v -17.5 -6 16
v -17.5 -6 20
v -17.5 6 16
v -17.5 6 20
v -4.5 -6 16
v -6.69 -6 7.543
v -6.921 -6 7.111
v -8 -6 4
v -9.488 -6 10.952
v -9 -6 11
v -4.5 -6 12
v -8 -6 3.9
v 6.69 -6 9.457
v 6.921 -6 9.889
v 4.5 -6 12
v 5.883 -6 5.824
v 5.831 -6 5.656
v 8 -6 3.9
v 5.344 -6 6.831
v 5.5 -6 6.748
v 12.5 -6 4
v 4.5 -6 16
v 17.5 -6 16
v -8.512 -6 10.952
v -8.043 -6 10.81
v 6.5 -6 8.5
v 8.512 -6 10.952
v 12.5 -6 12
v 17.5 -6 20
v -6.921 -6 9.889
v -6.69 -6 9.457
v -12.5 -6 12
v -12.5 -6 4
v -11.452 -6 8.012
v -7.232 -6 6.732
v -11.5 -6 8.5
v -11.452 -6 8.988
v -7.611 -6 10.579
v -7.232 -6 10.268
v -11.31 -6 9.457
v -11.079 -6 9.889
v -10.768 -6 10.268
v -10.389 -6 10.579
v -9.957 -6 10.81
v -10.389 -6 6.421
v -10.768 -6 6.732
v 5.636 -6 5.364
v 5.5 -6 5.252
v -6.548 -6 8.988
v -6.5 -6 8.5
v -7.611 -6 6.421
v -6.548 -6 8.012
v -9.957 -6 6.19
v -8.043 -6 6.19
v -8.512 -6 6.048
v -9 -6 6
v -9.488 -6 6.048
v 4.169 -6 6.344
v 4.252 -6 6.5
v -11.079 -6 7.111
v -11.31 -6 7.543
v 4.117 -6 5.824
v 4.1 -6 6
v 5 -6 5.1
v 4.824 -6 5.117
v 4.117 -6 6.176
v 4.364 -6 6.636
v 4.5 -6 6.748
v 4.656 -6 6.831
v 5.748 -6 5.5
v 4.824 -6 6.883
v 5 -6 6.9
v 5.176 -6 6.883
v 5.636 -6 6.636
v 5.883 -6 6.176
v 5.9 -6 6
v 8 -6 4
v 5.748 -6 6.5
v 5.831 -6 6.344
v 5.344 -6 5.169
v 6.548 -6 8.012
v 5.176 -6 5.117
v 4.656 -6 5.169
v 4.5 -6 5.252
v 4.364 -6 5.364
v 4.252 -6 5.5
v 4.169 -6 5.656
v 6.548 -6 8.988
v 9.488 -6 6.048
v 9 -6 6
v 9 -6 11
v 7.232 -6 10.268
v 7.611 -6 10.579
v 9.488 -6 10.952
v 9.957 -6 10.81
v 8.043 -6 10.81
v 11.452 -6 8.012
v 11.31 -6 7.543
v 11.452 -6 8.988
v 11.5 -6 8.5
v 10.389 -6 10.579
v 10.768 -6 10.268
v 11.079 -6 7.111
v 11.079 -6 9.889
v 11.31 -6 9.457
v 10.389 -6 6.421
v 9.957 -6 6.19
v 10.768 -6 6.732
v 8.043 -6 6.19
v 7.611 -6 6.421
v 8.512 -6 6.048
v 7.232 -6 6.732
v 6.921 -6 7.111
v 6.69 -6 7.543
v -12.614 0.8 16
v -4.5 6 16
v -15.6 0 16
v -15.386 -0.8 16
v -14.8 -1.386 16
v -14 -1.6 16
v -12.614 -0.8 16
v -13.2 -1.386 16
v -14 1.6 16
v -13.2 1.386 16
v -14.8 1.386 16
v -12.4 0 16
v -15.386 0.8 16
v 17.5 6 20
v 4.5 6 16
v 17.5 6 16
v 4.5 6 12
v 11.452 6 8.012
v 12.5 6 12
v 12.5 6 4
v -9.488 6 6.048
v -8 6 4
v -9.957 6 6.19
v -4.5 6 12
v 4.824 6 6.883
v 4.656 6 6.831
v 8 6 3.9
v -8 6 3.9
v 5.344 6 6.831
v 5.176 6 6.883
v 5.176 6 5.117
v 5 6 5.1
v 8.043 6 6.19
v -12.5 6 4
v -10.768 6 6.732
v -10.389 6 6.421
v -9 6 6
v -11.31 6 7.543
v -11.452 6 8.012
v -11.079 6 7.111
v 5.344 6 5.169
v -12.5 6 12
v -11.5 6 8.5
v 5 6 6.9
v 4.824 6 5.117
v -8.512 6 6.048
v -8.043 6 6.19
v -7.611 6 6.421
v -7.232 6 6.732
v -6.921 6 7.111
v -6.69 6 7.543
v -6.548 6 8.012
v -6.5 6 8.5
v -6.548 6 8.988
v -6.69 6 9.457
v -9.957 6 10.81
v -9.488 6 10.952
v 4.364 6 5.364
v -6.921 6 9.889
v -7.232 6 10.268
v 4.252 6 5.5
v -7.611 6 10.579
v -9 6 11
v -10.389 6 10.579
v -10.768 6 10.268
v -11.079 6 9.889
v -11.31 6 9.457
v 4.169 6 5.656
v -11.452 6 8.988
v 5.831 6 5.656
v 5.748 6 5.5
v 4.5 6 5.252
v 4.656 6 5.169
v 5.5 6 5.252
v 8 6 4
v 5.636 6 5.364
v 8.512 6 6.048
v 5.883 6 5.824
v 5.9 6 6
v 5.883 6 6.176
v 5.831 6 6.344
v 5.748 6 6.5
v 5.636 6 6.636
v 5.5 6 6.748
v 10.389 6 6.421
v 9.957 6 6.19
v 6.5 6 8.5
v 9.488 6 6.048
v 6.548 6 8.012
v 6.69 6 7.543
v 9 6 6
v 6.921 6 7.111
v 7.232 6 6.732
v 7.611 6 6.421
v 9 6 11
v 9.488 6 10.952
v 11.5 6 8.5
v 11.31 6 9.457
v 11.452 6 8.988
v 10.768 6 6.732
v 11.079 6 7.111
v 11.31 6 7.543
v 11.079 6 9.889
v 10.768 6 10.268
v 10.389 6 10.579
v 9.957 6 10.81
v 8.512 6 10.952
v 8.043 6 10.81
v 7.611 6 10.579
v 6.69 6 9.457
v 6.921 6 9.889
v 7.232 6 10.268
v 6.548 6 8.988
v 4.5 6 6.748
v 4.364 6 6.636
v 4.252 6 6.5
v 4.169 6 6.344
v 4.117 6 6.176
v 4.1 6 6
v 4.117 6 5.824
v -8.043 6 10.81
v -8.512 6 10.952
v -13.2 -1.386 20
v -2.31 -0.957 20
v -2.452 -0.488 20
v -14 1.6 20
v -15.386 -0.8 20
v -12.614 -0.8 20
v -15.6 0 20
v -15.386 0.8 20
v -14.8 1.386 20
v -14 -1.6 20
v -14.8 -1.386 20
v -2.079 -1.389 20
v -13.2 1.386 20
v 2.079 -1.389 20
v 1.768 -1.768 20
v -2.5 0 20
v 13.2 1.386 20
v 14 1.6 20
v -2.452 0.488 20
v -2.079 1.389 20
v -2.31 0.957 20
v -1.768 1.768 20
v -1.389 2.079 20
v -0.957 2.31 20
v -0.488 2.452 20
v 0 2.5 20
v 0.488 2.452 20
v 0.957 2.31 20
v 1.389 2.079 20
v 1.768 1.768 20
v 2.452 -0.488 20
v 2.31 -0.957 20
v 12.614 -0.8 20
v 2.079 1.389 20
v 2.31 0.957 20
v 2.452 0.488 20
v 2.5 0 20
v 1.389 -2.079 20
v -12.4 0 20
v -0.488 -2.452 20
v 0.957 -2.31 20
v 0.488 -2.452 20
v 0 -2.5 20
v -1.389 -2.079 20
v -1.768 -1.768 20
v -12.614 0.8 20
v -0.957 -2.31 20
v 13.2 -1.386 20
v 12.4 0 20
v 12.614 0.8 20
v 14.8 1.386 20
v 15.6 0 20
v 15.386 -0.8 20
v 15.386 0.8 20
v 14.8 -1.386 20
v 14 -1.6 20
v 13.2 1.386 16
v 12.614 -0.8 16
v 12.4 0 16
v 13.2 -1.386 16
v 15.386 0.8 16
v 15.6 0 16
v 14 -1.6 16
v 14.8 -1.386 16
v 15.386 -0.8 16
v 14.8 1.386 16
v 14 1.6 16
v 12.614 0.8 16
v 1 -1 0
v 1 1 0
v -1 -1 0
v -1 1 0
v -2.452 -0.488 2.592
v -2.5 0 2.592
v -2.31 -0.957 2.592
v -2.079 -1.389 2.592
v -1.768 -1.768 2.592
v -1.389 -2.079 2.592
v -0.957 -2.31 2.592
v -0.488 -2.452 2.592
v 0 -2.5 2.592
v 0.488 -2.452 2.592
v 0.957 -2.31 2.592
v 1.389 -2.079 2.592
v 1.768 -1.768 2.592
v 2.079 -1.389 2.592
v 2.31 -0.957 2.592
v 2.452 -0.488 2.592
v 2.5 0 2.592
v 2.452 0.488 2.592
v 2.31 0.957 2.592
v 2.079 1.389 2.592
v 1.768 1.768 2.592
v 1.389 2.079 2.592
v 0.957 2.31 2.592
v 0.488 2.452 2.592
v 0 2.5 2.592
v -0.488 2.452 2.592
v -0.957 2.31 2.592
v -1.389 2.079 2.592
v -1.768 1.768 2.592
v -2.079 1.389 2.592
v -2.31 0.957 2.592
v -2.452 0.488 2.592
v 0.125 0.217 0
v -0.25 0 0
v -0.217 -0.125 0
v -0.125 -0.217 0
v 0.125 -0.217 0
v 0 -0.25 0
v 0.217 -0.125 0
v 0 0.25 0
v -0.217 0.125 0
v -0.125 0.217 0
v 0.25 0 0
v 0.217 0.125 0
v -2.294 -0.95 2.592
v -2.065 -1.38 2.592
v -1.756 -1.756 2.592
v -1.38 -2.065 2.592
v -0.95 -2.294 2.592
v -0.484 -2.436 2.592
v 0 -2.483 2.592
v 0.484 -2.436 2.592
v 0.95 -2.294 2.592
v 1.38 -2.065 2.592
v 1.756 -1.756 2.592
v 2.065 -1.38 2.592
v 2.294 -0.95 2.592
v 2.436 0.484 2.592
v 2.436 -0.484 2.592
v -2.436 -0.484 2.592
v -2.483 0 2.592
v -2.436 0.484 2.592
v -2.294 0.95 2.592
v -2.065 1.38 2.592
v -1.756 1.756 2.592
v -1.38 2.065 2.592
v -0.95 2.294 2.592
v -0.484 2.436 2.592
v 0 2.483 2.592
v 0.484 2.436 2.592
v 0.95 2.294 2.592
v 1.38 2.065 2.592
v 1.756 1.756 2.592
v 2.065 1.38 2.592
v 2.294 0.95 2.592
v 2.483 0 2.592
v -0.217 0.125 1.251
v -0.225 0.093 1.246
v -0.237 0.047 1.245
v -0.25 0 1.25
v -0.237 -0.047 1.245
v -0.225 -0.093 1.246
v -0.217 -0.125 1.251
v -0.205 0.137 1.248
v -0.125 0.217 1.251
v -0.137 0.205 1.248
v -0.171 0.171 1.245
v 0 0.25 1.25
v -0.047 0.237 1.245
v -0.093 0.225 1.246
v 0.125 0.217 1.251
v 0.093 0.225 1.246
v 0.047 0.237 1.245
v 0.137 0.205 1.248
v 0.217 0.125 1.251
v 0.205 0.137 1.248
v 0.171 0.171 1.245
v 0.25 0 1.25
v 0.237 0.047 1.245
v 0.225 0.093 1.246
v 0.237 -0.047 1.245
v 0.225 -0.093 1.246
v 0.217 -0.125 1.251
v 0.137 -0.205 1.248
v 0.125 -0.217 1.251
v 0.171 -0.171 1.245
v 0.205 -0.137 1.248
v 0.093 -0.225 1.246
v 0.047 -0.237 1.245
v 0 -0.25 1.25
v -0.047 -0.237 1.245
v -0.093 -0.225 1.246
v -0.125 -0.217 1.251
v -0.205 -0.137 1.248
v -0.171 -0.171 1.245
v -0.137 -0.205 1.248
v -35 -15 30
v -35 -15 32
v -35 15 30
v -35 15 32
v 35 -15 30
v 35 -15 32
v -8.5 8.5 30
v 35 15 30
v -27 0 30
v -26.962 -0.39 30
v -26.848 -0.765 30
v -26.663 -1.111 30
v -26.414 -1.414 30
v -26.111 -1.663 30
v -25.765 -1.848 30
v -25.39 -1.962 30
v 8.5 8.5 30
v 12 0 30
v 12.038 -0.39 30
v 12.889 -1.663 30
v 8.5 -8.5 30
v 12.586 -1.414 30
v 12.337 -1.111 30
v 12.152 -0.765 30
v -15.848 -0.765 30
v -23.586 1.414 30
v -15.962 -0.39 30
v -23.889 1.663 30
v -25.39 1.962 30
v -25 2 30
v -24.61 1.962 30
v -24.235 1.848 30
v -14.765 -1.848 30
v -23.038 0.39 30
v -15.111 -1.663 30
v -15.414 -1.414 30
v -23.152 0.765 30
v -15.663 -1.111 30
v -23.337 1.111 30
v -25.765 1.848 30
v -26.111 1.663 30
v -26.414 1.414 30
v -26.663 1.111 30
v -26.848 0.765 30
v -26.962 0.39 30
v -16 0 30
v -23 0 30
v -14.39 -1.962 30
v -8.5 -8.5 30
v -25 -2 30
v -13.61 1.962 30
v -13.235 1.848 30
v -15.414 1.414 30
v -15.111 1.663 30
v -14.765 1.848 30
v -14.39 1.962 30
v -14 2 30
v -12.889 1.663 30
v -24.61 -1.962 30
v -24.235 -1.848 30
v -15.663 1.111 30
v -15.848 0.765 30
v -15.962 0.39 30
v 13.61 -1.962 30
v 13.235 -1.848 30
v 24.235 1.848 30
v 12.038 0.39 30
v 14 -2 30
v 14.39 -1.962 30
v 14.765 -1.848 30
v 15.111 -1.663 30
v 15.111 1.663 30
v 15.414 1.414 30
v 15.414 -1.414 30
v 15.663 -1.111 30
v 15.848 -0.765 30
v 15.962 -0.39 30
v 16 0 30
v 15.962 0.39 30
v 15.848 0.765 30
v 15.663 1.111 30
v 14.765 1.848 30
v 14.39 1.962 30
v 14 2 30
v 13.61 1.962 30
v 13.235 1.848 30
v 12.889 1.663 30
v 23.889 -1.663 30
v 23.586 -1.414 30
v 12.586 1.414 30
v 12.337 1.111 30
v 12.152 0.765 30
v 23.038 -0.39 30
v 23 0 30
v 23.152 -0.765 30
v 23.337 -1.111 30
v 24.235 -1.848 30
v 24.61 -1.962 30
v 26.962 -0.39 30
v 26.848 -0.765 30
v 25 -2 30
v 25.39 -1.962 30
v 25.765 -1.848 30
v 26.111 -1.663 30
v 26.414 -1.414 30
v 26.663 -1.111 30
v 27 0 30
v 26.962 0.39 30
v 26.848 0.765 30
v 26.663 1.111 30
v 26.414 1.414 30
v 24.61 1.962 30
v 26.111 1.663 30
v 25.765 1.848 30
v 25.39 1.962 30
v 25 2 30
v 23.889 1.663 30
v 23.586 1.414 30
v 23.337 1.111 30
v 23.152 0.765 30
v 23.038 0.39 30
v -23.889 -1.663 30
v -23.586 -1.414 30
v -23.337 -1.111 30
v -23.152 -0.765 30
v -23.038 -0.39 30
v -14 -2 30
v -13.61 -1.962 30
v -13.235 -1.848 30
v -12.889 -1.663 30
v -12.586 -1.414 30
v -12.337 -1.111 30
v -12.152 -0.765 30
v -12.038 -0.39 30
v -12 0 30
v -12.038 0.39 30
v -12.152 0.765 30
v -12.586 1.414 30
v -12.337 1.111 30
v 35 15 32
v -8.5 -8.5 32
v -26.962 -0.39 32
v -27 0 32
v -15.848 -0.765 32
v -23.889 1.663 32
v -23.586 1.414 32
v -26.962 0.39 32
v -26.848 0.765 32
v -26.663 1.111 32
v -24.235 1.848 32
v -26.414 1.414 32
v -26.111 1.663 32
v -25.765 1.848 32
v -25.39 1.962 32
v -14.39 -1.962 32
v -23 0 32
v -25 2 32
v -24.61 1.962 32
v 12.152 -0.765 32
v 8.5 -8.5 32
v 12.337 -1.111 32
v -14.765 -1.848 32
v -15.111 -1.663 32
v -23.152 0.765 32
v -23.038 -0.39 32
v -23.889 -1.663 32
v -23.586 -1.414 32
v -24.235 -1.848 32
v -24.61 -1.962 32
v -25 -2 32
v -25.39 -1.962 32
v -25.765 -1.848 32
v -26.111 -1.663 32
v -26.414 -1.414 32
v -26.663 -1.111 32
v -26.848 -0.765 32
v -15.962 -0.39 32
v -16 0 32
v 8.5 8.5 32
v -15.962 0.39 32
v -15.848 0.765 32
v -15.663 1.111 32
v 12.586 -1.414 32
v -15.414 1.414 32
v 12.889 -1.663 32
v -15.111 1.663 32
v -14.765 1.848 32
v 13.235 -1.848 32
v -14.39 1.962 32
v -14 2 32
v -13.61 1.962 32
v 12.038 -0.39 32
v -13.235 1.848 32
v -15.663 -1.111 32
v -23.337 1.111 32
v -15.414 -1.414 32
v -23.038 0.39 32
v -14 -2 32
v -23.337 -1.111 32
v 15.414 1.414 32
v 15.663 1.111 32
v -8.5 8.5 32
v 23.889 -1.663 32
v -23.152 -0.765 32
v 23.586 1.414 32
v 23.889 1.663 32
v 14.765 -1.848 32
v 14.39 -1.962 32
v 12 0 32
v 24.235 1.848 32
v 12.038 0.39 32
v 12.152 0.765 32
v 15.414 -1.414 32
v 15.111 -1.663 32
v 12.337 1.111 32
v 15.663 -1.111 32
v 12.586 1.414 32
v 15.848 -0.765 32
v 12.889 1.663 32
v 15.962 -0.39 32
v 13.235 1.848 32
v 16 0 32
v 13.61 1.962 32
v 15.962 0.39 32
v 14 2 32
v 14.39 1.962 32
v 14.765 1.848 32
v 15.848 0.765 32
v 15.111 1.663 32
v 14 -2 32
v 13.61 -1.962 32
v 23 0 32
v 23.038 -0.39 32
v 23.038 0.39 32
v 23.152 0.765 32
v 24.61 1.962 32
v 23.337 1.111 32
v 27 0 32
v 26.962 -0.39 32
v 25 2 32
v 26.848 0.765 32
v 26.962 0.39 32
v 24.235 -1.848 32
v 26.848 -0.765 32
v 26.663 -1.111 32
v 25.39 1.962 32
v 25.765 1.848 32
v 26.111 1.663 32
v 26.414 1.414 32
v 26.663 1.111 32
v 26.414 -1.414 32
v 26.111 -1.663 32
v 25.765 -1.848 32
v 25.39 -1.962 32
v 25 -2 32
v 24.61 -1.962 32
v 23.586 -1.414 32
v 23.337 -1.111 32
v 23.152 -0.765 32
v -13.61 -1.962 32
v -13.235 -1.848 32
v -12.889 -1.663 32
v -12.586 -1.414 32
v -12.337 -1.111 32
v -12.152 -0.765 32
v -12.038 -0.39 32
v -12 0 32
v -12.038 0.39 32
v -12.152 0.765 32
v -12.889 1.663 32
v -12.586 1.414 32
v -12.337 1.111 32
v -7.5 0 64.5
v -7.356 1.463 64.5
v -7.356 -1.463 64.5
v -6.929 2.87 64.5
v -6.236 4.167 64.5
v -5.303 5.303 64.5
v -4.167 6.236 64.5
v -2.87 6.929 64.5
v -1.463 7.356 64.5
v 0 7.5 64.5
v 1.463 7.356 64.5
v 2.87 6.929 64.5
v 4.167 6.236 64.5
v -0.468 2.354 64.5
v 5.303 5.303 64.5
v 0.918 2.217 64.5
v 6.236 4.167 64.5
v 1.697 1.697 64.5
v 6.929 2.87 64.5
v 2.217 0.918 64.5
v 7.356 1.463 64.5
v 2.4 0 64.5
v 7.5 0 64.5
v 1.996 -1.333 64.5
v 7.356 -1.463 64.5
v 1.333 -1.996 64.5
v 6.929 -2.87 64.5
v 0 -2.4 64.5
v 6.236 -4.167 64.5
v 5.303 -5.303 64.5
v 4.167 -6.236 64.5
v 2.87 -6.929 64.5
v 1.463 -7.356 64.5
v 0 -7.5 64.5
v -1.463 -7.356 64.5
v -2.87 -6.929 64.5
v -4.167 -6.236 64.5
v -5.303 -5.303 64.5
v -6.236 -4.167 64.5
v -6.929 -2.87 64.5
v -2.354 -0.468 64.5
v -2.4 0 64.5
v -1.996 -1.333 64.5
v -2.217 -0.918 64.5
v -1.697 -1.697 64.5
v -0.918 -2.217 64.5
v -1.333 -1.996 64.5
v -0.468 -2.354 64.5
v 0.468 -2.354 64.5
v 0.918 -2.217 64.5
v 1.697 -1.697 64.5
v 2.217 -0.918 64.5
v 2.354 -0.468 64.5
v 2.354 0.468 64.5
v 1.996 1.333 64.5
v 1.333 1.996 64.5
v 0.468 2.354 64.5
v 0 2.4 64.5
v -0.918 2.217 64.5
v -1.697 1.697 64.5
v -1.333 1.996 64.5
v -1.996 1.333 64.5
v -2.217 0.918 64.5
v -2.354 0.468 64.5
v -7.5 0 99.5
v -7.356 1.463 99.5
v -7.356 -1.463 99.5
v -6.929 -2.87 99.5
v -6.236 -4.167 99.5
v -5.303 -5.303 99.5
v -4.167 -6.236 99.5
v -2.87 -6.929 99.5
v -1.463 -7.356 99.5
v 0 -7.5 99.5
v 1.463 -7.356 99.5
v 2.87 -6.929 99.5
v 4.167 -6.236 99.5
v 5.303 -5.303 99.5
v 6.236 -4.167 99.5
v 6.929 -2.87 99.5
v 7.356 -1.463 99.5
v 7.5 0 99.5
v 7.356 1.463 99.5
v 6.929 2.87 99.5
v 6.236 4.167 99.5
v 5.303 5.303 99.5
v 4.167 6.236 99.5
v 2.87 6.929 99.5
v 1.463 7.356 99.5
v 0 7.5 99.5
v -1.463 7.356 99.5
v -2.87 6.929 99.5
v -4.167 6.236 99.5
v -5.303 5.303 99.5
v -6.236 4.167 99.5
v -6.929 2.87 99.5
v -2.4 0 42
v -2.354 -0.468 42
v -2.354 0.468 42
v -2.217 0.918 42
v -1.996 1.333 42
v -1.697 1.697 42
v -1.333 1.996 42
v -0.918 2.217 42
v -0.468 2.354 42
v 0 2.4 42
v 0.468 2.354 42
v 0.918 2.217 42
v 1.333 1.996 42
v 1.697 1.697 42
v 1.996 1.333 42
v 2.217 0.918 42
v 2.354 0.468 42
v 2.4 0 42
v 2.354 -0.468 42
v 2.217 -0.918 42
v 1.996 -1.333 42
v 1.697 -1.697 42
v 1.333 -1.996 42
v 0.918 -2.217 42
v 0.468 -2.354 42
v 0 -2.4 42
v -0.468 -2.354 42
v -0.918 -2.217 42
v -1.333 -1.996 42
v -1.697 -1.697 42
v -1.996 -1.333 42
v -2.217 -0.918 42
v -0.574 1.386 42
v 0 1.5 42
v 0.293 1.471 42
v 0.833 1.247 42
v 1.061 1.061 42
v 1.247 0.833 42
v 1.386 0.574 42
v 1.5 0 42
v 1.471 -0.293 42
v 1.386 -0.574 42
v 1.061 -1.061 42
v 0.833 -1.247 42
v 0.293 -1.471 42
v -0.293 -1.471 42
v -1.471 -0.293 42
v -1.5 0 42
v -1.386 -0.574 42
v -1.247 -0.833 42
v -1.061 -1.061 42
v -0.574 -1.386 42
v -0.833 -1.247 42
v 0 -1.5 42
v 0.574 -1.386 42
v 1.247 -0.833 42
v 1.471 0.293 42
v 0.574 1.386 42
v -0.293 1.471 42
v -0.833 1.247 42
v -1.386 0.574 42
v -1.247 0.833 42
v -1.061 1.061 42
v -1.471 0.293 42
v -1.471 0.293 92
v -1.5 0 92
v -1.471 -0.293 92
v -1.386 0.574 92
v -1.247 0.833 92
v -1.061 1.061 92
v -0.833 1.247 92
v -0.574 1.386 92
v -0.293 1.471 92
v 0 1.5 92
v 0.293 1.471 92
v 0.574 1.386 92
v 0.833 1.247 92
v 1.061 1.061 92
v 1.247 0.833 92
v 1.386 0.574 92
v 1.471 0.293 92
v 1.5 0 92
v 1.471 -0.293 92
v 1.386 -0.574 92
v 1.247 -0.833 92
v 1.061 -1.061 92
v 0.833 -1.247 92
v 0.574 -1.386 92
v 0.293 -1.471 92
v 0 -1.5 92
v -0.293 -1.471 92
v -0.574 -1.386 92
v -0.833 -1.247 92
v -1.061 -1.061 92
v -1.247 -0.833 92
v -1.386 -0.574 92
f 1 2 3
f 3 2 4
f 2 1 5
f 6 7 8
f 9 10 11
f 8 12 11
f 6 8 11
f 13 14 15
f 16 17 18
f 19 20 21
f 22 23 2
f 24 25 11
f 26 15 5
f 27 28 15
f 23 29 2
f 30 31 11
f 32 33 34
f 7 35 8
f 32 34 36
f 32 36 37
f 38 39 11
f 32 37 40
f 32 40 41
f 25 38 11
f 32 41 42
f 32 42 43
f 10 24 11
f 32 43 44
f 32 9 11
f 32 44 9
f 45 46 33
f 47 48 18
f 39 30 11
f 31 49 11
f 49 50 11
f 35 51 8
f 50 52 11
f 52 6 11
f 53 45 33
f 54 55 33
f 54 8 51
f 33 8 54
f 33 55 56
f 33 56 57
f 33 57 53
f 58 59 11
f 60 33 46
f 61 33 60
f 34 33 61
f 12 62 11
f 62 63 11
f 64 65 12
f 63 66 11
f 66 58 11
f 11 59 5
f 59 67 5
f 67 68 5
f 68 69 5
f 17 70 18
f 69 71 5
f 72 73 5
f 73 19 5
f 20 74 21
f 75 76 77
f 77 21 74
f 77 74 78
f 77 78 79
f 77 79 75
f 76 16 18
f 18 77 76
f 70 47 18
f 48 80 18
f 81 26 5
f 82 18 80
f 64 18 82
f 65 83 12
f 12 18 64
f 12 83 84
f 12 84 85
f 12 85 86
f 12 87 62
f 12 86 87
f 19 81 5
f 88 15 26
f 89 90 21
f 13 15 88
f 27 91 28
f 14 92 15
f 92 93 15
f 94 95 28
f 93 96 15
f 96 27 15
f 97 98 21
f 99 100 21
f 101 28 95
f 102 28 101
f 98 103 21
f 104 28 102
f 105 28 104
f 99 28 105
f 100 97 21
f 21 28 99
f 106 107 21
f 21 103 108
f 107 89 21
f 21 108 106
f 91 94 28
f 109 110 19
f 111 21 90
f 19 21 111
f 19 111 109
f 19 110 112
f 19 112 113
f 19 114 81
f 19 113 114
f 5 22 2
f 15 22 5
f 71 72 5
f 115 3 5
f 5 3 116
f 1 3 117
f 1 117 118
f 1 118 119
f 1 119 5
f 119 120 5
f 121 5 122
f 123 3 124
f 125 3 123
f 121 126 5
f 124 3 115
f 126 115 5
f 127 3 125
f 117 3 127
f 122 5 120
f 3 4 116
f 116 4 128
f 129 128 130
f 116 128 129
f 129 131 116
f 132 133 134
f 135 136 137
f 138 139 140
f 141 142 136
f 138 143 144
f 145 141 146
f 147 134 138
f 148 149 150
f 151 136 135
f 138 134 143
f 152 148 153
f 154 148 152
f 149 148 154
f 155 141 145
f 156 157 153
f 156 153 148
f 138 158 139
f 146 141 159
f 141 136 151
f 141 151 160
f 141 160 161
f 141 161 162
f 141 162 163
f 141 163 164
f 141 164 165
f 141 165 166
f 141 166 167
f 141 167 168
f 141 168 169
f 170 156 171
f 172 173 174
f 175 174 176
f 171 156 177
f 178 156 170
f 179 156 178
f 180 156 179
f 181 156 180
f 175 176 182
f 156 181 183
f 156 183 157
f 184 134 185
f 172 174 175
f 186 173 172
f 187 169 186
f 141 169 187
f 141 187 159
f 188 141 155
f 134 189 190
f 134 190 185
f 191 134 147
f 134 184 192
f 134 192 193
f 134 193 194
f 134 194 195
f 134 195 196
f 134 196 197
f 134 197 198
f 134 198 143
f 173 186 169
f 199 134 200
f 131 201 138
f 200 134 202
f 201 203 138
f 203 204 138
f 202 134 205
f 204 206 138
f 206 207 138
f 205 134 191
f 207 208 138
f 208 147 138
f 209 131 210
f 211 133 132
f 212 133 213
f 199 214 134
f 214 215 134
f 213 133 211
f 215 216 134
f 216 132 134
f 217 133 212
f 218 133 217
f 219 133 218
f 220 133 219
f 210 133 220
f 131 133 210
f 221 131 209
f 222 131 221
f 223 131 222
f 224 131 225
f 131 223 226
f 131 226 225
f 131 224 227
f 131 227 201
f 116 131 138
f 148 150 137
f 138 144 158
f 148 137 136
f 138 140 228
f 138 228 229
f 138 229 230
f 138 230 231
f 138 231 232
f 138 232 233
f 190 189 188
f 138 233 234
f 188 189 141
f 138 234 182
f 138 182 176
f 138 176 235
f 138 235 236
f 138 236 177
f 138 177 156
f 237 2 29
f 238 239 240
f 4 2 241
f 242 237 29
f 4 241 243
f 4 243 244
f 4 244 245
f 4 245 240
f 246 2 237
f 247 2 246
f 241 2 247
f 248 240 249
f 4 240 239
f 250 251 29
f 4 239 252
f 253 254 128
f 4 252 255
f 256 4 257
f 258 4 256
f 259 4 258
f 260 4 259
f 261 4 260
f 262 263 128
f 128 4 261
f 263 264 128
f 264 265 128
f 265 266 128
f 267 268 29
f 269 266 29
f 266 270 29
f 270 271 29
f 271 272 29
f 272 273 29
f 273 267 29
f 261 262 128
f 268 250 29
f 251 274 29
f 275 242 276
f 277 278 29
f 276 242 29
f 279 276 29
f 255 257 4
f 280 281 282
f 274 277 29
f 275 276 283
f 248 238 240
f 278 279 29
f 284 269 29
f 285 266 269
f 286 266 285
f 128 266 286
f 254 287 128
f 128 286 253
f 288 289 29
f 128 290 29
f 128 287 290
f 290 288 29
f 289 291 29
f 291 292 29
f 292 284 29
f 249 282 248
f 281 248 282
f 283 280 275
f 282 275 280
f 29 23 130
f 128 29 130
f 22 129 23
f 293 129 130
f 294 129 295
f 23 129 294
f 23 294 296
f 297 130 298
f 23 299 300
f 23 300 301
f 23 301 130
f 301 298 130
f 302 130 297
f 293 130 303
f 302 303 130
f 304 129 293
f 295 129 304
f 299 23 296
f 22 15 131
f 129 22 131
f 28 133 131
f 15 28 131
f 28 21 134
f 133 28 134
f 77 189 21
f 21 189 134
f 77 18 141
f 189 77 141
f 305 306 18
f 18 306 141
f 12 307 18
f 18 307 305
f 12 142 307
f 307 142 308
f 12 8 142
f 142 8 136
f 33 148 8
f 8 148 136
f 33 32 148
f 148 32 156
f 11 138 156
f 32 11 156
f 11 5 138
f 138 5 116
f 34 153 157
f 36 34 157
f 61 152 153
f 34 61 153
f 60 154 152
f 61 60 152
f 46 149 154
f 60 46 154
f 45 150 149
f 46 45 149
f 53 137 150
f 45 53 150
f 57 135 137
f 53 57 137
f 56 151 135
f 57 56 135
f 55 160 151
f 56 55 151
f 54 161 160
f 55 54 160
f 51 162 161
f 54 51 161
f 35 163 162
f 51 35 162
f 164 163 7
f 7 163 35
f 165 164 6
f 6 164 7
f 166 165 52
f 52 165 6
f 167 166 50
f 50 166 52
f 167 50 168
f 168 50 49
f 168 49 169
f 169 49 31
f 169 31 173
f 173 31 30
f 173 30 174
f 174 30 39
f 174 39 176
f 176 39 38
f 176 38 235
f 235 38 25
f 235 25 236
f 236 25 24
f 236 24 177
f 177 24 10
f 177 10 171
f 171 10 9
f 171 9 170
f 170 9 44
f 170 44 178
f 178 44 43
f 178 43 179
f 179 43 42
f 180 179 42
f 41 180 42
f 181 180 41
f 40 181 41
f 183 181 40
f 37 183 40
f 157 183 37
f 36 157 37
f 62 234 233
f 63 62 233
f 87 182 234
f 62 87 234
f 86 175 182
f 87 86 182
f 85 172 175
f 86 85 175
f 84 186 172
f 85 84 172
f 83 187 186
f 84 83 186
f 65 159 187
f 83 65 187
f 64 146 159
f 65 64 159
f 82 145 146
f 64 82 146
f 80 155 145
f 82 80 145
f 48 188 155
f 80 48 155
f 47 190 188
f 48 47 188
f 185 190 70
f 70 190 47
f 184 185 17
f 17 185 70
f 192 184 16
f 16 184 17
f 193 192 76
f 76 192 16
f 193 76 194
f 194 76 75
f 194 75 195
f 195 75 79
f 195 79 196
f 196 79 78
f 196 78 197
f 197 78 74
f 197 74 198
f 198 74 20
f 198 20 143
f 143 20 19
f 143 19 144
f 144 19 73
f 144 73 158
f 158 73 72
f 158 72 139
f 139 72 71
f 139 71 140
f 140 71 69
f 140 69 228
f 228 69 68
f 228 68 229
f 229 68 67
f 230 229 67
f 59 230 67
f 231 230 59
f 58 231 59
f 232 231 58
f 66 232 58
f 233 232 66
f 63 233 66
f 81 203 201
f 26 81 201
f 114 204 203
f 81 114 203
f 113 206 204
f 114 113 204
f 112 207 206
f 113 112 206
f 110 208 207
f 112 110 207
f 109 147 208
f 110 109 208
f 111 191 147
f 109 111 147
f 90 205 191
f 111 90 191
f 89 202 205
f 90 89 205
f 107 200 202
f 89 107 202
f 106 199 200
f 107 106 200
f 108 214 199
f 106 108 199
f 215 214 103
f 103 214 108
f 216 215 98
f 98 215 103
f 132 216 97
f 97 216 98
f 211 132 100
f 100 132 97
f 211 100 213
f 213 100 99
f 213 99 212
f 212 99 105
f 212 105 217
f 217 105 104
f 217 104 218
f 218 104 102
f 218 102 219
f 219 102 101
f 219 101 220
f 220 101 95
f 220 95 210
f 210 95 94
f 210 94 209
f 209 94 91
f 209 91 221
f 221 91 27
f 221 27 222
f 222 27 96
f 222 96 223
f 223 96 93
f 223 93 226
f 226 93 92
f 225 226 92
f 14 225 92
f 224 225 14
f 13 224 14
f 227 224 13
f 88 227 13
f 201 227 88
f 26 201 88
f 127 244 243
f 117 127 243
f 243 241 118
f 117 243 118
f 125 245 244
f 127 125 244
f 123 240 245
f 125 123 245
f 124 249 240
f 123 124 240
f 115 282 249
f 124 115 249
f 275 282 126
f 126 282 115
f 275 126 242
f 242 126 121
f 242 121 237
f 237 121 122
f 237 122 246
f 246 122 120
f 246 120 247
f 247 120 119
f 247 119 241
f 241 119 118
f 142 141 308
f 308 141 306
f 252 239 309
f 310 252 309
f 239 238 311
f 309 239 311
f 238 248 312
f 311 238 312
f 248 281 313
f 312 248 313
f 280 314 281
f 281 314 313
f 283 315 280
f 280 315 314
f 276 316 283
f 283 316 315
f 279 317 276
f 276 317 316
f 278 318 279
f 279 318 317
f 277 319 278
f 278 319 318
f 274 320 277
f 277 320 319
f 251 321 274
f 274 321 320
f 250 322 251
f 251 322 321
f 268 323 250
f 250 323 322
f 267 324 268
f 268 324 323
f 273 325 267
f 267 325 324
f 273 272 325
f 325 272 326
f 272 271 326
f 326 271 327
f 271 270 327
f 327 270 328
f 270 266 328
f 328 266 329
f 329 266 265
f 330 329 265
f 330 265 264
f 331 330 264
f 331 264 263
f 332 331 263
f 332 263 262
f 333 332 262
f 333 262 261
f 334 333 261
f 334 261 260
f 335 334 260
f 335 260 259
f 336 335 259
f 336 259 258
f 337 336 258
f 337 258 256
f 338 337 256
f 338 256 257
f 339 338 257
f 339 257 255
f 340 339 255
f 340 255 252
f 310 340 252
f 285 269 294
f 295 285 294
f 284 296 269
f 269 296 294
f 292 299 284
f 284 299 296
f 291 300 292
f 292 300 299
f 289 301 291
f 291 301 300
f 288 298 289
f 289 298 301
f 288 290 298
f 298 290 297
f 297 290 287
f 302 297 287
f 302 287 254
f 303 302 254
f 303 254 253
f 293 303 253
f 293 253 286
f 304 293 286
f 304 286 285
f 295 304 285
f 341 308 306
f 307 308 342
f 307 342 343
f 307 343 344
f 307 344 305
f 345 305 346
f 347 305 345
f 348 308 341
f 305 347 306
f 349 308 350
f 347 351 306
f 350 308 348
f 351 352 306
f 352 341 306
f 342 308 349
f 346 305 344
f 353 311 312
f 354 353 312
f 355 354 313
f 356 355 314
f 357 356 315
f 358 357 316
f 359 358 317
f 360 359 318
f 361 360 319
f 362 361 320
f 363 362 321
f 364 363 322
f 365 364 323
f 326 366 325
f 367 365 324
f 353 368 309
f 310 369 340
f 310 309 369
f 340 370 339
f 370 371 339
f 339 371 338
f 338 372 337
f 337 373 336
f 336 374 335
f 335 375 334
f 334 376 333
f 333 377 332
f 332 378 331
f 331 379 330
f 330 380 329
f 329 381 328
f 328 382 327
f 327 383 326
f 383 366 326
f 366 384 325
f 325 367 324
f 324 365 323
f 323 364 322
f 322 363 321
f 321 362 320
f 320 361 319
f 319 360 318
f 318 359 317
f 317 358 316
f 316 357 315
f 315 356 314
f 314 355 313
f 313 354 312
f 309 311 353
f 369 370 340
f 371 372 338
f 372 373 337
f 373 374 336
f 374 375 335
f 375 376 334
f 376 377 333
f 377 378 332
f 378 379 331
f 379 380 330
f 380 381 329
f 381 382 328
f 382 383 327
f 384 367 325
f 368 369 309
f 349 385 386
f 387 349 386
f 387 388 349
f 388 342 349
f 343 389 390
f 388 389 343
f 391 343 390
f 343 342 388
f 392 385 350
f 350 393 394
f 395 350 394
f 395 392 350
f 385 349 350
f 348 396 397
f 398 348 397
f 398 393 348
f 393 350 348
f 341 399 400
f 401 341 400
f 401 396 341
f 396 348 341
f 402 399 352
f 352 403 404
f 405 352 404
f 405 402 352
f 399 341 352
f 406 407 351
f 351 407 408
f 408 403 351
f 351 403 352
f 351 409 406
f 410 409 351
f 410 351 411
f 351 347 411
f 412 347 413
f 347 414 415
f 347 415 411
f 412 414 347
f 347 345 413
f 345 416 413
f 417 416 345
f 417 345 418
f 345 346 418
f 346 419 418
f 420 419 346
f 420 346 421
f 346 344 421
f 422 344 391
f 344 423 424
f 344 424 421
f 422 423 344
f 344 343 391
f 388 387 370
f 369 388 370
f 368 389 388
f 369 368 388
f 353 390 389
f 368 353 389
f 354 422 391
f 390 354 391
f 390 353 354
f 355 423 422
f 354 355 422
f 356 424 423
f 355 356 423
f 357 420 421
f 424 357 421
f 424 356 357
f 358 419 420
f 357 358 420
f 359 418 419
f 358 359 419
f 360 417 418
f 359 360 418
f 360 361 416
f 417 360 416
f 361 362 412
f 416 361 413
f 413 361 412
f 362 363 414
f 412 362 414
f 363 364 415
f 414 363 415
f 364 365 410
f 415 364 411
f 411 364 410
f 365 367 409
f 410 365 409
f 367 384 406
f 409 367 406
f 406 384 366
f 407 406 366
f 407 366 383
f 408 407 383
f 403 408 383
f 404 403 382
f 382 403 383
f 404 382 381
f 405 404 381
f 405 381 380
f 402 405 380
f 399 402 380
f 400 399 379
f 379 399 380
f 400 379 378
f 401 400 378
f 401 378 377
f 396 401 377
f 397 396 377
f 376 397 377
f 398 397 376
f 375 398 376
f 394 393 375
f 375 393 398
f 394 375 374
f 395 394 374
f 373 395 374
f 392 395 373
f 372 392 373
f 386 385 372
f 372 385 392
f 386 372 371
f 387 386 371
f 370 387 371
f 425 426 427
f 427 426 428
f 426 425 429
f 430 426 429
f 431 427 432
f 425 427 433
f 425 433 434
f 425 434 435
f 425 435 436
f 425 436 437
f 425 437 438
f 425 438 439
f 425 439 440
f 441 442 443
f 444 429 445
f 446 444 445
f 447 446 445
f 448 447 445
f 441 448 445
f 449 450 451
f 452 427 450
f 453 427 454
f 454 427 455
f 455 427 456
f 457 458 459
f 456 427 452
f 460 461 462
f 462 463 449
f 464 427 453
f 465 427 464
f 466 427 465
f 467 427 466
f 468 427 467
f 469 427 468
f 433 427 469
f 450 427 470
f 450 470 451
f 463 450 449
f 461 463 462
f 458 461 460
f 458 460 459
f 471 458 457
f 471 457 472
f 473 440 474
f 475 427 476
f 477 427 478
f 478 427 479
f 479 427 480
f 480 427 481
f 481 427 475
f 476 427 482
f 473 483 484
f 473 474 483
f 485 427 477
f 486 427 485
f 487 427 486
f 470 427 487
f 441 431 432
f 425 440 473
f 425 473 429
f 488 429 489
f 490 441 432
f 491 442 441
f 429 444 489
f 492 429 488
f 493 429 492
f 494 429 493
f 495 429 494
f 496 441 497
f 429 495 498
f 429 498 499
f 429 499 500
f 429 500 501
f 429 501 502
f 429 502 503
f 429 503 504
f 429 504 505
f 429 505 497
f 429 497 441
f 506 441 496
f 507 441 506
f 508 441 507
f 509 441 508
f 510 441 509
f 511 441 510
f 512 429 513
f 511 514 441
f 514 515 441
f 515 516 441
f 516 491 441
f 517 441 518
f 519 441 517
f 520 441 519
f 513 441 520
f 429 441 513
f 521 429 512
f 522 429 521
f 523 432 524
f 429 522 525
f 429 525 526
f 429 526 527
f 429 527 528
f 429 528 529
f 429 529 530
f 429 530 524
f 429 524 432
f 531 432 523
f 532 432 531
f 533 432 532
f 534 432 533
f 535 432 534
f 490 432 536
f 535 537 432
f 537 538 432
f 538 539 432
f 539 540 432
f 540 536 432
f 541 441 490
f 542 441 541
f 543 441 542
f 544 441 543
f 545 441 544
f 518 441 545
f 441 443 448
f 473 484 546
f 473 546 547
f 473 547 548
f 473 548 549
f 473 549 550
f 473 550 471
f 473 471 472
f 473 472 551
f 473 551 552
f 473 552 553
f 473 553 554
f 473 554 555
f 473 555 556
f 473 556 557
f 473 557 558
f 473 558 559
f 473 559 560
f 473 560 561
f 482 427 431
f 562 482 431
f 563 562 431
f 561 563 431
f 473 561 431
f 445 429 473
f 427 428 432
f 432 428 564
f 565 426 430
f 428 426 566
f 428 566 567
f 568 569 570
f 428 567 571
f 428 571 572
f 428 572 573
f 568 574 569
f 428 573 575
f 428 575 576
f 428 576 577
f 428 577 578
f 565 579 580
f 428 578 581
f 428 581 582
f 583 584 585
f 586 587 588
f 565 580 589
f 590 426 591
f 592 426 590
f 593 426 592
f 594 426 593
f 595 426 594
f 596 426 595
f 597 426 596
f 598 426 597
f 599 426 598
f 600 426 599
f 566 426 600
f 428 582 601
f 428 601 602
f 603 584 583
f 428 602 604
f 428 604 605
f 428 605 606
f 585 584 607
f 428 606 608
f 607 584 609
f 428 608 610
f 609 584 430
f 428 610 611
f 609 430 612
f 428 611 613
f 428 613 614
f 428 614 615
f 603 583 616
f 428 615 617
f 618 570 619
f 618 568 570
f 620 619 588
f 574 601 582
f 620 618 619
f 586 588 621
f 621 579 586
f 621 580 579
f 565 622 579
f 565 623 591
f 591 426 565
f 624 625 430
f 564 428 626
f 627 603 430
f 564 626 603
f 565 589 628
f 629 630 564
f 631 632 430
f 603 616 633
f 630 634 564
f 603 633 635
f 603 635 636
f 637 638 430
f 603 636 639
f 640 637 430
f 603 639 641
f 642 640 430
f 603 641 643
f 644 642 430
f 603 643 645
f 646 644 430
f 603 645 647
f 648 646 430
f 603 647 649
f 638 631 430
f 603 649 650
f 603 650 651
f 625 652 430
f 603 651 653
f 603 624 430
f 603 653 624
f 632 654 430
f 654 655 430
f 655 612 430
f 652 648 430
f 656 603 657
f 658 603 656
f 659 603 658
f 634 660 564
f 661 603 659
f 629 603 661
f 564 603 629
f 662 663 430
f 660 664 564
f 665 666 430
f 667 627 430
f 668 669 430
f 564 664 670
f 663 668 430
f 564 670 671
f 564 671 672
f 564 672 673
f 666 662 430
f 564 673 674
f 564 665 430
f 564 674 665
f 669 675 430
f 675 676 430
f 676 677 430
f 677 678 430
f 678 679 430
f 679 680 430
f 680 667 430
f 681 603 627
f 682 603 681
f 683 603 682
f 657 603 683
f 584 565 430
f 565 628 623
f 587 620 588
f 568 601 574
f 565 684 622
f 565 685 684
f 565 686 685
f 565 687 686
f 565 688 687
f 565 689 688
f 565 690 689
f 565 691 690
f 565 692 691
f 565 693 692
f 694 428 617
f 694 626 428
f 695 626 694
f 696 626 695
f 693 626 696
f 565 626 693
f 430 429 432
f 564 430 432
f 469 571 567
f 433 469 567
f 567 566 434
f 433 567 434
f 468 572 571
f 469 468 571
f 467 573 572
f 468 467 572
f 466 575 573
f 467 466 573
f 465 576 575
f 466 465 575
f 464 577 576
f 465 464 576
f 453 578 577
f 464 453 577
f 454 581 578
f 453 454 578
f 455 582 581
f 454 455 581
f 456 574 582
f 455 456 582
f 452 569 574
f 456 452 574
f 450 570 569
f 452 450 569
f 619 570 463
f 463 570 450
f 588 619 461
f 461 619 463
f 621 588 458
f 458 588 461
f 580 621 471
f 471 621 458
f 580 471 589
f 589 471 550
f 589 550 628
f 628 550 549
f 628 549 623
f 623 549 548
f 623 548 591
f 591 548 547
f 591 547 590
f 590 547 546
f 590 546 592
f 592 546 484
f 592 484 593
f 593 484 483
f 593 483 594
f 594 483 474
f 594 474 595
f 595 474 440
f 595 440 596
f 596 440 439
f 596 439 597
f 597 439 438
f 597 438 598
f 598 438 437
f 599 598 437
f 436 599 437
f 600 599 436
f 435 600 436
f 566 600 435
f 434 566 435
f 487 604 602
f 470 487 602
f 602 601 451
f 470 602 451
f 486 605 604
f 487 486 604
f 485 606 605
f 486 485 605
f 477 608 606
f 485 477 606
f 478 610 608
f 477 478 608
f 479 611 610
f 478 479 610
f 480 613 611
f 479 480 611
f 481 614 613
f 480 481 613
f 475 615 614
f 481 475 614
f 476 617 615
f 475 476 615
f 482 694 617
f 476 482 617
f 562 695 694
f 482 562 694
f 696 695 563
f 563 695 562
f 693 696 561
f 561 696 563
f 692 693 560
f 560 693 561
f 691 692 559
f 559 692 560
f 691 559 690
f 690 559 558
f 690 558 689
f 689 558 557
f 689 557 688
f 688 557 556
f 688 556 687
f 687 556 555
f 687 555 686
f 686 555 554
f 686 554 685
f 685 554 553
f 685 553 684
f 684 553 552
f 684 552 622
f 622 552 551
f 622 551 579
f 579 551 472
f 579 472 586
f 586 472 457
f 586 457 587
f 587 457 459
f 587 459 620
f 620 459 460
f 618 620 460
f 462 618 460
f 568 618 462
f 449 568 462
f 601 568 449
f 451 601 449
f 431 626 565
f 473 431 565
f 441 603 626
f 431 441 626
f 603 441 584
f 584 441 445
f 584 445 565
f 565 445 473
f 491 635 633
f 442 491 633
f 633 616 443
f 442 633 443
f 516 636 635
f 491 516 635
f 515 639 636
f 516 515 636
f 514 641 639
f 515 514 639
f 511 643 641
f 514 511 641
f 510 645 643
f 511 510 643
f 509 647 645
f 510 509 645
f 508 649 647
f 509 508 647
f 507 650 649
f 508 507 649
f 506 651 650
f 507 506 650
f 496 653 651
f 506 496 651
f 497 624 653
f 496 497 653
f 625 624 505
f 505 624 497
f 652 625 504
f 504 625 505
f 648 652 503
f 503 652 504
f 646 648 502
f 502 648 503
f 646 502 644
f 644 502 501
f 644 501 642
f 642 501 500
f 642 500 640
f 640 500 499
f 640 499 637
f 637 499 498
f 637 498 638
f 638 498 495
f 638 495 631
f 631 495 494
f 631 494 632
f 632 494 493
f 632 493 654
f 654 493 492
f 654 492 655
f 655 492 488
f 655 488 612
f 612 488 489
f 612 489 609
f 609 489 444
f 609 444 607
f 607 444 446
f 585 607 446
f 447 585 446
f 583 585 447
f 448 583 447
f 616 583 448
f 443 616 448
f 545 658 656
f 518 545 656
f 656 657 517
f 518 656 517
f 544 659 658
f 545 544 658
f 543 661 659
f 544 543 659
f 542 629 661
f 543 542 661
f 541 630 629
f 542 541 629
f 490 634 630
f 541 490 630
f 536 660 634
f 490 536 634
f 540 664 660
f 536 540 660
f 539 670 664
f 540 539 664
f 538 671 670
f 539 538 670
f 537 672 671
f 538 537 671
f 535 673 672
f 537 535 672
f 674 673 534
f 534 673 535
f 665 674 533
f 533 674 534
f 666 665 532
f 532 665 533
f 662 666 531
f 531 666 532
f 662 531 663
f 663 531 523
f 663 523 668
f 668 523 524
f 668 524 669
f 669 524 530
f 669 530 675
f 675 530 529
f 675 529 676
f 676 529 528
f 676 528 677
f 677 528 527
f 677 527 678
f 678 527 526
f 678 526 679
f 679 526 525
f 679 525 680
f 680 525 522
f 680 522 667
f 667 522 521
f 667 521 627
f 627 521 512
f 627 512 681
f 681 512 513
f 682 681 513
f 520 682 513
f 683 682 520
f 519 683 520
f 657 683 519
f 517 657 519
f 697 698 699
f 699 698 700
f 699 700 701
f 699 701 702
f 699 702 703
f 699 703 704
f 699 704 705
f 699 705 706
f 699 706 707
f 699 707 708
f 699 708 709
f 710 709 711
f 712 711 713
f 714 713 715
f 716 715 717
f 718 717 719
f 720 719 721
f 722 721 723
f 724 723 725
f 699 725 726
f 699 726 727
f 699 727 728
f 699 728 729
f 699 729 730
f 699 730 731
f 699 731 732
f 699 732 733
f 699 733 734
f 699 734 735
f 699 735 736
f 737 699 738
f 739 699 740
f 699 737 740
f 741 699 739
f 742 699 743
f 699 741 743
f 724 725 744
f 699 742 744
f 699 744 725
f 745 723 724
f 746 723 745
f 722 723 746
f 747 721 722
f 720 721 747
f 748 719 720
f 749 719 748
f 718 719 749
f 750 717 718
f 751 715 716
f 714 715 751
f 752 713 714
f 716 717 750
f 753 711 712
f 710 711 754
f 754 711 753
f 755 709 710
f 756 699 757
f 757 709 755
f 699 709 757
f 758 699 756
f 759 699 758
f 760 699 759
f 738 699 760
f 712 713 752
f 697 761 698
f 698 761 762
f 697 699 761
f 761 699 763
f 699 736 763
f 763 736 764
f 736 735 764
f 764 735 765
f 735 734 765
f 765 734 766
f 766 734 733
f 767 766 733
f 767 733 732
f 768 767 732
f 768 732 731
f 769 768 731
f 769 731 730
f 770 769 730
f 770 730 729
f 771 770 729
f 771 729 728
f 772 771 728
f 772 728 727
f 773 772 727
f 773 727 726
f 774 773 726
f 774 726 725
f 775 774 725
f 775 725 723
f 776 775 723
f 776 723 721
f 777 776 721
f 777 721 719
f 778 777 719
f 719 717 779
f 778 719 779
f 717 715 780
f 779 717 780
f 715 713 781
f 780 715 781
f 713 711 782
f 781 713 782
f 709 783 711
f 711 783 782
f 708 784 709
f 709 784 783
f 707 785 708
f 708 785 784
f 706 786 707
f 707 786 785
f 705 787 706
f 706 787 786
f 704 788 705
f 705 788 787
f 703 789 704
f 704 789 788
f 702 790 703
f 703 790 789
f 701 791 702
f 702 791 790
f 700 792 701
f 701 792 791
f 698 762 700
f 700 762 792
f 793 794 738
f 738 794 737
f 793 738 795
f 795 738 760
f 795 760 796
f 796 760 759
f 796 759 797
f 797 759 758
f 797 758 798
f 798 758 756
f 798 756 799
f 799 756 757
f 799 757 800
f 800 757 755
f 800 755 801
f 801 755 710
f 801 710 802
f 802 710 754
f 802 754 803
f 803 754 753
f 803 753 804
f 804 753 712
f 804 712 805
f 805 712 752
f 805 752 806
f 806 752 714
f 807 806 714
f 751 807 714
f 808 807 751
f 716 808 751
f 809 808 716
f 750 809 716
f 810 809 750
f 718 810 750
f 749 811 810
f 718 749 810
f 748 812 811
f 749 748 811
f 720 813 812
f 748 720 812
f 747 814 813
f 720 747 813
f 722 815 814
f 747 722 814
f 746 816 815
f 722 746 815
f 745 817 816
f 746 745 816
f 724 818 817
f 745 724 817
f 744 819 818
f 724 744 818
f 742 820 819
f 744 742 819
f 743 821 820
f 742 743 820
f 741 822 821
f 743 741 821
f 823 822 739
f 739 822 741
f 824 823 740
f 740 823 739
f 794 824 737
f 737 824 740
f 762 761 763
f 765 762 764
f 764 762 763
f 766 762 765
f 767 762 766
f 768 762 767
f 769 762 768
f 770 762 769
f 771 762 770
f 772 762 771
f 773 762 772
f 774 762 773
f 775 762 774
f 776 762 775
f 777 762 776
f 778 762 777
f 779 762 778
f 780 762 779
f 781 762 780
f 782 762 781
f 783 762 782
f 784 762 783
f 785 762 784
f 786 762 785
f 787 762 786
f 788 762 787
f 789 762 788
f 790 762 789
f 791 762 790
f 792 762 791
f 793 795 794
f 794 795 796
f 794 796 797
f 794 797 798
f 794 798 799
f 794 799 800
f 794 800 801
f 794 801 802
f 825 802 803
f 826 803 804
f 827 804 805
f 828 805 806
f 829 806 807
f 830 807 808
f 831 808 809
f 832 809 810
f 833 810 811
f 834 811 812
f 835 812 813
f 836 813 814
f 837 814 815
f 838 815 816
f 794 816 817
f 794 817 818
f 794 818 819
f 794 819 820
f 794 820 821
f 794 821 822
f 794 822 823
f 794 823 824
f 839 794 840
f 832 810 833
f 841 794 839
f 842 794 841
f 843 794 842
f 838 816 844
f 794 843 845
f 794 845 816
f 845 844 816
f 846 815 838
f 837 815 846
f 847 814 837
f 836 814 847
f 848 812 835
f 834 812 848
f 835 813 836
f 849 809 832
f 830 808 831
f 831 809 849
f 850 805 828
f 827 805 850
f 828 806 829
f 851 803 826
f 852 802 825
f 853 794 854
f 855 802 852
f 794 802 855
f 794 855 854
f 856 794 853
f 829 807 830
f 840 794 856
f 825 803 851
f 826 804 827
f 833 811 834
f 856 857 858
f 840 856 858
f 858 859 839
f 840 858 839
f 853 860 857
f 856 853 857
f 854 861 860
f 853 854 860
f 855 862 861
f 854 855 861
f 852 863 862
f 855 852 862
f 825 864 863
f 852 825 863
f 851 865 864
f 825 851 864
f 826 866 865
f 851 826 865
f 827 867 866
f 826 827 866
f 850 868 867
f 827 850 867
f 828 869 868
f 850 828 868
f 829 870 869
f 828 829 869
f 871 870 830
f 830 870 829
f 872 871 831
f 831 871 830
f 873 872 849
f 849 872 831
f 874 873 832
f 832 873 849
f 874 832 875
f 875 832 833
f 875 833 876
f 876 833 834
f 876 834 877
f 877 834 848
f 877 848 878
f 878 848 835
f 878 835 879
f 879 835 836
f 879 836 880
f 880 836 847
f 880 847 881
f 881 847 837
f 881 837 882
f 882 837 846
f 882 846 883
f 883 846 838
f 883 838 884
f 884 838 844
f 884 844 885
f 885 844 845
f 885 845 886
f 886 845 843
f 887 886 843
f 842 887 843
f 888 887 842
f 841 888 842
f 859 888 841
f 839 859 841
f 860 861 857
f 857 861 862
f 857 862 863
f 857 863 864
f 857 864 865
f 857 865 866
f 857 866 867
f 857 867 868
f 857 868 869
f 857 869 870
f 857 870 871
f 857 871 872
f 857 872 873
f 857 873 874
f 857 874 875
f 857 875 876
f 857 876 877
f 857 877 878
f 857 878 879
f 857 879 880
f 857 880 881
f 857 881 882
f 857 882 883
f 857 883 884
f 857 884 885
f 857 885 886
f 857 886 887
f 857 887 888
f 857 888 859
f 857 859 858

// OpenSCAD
//-----------------------------------------------------------------------------------
// drill and file hotend
// a simple diy hotend which can be built with only a drill press and hand tools
//
// v3 - with double heating resistors and single thermistors
//      and with mounting bracket on top
//
// see https://github.com/Stemer114/things/tree/master/drill-and-file-hotend
// (c) 2013 by Stemer114
// License: licensed under the Creative Commons - GNU GPL license.
//          http://www.gnu.org/licenses/gpl-2.0.html
//-----------------------------------------------------------------------------------

//-----------------------------------------------------------------------------------
//display settings
//-----------------------------------------------------------------------------------
show_cross_section  = false;  //enable for cross section
//show_debugging_cube = true;  //enable for debugging
//show_explode = true;  //enable for explosion view - depreciated, set ex to 1 instead
show_projection = false;   //enable for 2d projection (for dxf export)
/* projection types
   1 - side view, cut at center (fast)
   2 - side view (projected)
   3 - top view (projected)
   4 - planned: top view, cut at z = bracket position
*/
projection_type = 1;


//-----------------------------------------------------------------------------------
// which components to show
//-----------------------------------------------------------------------------------
show_HotEnd     = true;
show_MountPlate = true;
show_Insulator  = true;


//-----------------------------------------------------------------------------------
//color settings
//-----------------------------------------------------------------------------------
color_hotend           = "LightSkyBlue";
color_insulator_sleeve = "OrangeRed";
color_insulator_rod    = "DarkOrange";
color_mountplate       = "MediumSpringGreen";


//-----------------------------------------------------------------------------------
//global configuration settings
//-----------------------------------------------------------------------------------
de = 0.1; //delta param, so differences are scaled and do not become manifold
fn_hole = 12;  //fn setting for round holes/bores (polyhole)
ex = 1;  //for explosions view set to 1 (or more to scale), 0 for mounted view


/* explosion view: every component has to offset settings
   - the first offset setting is always used and controls how the components are mounted
     to compose the complete hotend
   - the second offset is added on top for explosion view, therefore the components are
     moved apart in z-direction, this offset is multiplicated by ex
   therefore, when setting ex to 0, the mounted view is rendered
              when setting ex to 1, the normal explosion view is rendered
              when setting ex to lower or higher than 1, a scaled explosion view is rendered
*/


//-----------------------------------------------------------------------------------
//configuration settings
//-----------------------------------------------------------------------------------

//filament
dia_filament = 3;

//P2: new hotend block (v3)
P200 = 0;    //z offsets for normal and exploded view
P200ex = 0;
P201 = 35;  //original width
P202 = 20;  //original height
P203 = 12;  //original thickness/depth
//holder
P211 = 4;    //thickness
P212 = 3.2;  //mounting hole diameter (for M4 thread)
P213 = 14;   //mounting hole offset from middle
//connector
P221 = 4;    //thickness
P222 = 9; //width
P223 = 12; 
//heater
P231 = 8;   //height
P232 = 25;  //width
P233 = 12; //depth
P234 = 5;    //heat resistor diameter
P235 = 1.8;  //thermistor diameter
P2361 = 9;    //resistor left offset x
P2362 = 4.5;    //              offset z
P2363 = 9;    //resistor right offset x
P2364 = 4.5;  //               offset z
P2365 = 5;    //thermistor offset x
P2366 = 2;    //thermistor offset z
//nozzle
P241 = 4;    //height
P242 = 1;    //nozzle length (length of 0.4/0.5 mm nozzle bore)
P243 = 0.5;  //nozzle bore diameter
P244 = 16;   //nozzle top x
P245 = 12;   //nozzle top y
P246 = 2;    //nozzle tip square (length)
//filament/insulator bore
P251 = P211 + P221 + P231 + P241-P242;  //length (calculated)
P252 = 5;    //diameter

//debug output
echo("hotend block current height (calculated): ", P211 + P221 + P231 + P241);
echo("hotend block assumed height (configured): ", P202);

//P3: mount plate (v3 will use steel)
P300 = P202;    //normal mounting position is right atop hotend
P300ex = 10;    
P301 = 2;  //thickness
P302 = 70; //length
P303 = 30; //width
P310 = 15+2;  //cutout length
P311 = 15+2;  //cutout width (insulator od needs to fit)
P320 = 4;     //outer rods mounting holes dia
P321 = 25;    //outer rods mounting holes offset from center
P330 = 4;     //hotend block screw mount diameter
P331 = P213;  //hotend block srew mount offset from center 
              //(needs to be in line with threaded holes in hotend holder)


//P4: PTFE insulator
//z offset depends on exploded view or not
P400 = 27;     //normal mounting position is right behind nozzle
P400ex = 40;
insulator_od = 15;
insulator_id = 5;
insulator_len = 35;
sleeve_od = 4.8;  //outside diameter of sleeve (little bit smaller than 5.0 for better display)
sleeve_id = dia_filament;  //filament bore in sleeve
sleeve_delta = 15;  //how much longer is sleeve compared to rod

//P3: hotend block
hb_w = 35; //width
hb_d = 12; //depth
hb_h = 11; //height
dia_res = 5;  //heat resistor diameter
dia_therm = 1.8;  //thermistor diameter
dia_centr = sleeve_od;   //central bore for PTFE sleeve

//nozzle block (aluminium)
nb_w = 12;
nb_d = hb_d;
nb_h = 9;
nozzle_dia = 0.5;  //nozzle diameter
nozzle_len = 1.0;  //nozzle length within nozzle block
nozzle_square = 2; //nozzle square (the area surrounding the nozzle bore outside)

//mechanical settings
drill_bit_angle = 118;  //angle of drill bit tip (normally 118 degrees for HSS drill bit)

//-----------------------------------------------------------------------------------
// main rendering
//-----------------------------------------------------------------------------------

//for debugging, show transparent cube at origin
//if (show_debugging_cube)
//	%cube(10);

if (show_projection) {
    //projection (for dxf export)
    //in openscad compile (F6), then export to dxf
    //the dxf can be opened with librecad and e.g. measured
    if (projection_type == 1) {
        //side view, cut at center
        projection(cut=true) rotate([90, 0, 0]) HotendAssembly();
    } else if (projection_type == 2) {
        //top view, projected from outside
        projection(cut=false) rotate([90, 0, 0]) HotendAssembly();
    } else if (projection_type == 3) {
        //top view
        projection(cut=false) HotendAssembly();
    }
} else {
    //3d view
    HotendAssembly();
}




//-----------------------------------------------------------------------------------
// modules
//-----------------------------------------------------------------------------------

// render the complete assembly, depending what components are enabled
module HotendAssembly()
{
    union()
    {
        if (show_HotEnd) {
            translate([0, 0, P200+P200ex*ex])
                HotEnd();
        }

        if (show_MountPlate) {
            translate([-P302/2, -P303/2, P300+P300ex*ex])
                MountPlate();
        }

        if (show_Insulator) {
            translate([0, 0, P400+P400ex*ex])
                Insulator();
        }

    }  //end union

}  //end module


/* the hot end v3
   consisting of
   - holder 
   - connector (for inserting bracket)
   - heater block
   - nozzle
*/
module HotEnd()
{
    color(color_hotend)
    {
        difference()
        {
            union()
            {
                translate([0, 0, P202-P211])
                    HotEndHolder();
                 translate([0, 0, P202-P211-P221])
                    HotEndConnector();
                 translate([0, 0, P202-P211-P221-P231])
                    HotEndHeater();
                 translate([0, 0, P202-P211-P221-P231-P241])
                     HotEndNozzle();
             }

            union()
            {
                //central bore
                translate([0, 0, P242+de]) 
                    drill_hole(P252, P251+de, 118);
                //nozzle bore
                translate([0, 0, -de])
                    cylinder(h=P242+4*de, r=P243/2, center=false, $fn=12);
            }
        }
    }
}


module HotEndHolder() {
    translate([0, 0, P211/2])
        difference() {
            //holder base part
            cube([P201, P203, P211], center=true);

            //mounting bore left
            translate([-P213, 0, -de])
                cylinder(h=P211+4*de, r=P212/2, center=true, $fn=12);
            //mounting bore right
            translate([P213, 0, -de])
                cylinder(h=P211+4*de, r=P212/2, center=true, $fn=12);
         }
}

module HotEndConnector() {
    translate([0, 0, P221/2])
        cube([P222, P223, P221], center=true);
}

module HotEndHeater() {

    {
        difference()
        {
            union()
            {
                //heater base cube
                translate([0, 0, P231/2])
                    cube([P232, P233, P231], center=true);
            }

            union()
            {
                //heater resistor bore left
                translate([-P2361, 0, P2362])
                    rotate([90, 0, 0]) 
                    cylinder(h=P233+2*de, r1=P234/2, r2=P234/2, center=true, $fn=32);

                //heater resistor bore right 
                translate([P2363, 0, P2364])
                    rotate([90, 0, 0]) 
                    cylinder(h=P233+2*de, r1=P234/2, r2=P234/2, center=true, $fn=32);

                //thermistor bore
                translate([P2365, 0, P2366])
                    rotate([90, 0, 0]) 
                    cylinder(h=P233+2*de, r1=P235/2, r2=P235/2, center=true, $fn=32);

            }
        }
    }  //translate hotendheater 
}


// new version, uses hull in order to be able to scale the nozzle
// differently in x and y direction
module HotEndNozzle() {

    hull() {
        //upper plate, where nozzle connects to heater
        translate([0, 0, P241-de/2])
            cube([P244, P245, de], center=true);

        //lower plate, where nozzle bore exits
        translate([0, 0, de/2])
            cube([P246, P246, de], center=true);
    }

}

// the insulator
// made from PTFE 15mm rod
// with inner PTFE sleeve made from 5mm PTFE rod
module Insulator()
{

	difference()
	{
		union()
		{
			//rod body
			color(color_insulator_rod)
			{
			translate([0, 0, sleeve_delta])
			cylinder(insulator_len, insulator_od/2, insulator_od/2, 
					  center=true, $fn=32);
			}

			//sleeve body
			color(color_insulator_sleeve, 0.5)
			{
			cylinder(insulator_len+sleeve_delta, sleeve_od/2, sleeve_od/2, 
					  center=true, $fn=32);
			}
		}
	
		union()
		{
			//inner bore in rod
			//actually need to make separate modules
			//for rod and sleeve and join them
			//translate([0, 0, sleeve_delta])
			//cylinder(insulator_len, insulator_id/2, insulator_id/2, 
			//		  center=true, $fn=32);

			//inner bore in sleeve
			cylinder(insulator_len+sleeve_delta, sleeve_id/2, sleeve_id/2, 
					  center=true, $fn=32);
		}
	}
}



// the mount plate
// with cutout for the hotend
// and with bores for the mounting rods
module MountPlate()
{
	color(color_mountplate, 0.5)
	{

		difference()
		{
			union()
			{
				cube([P302, P303, P301]);
			}
		
			union()
			{

                //cutout
				translate([
					P302/2-P310/2,
					-P311/2+P303/2, 
					-0.1
				])
				cube([
					P310, 
					P311, 
					P301+0.2
				]);

				//outer mounting rod bore left
				translate([
					P302/2-P321, 
					P303/2, 
					P301/2
				])
				cylinder(
					P301*1.2, 
					P320/2, 
					P320/2, center=true, $fn=32
				);

				//outer mounting rod bore right
				translate([
					P302/2+P321, 
					P303/2, 
					P301/2
				])
				cylinder(
					P301*1.2, 
					P320/2, 
					P320/2, center=true, $fn=32
				);

				//hole for screw for mounting hotend holder (left)
				translate([
					P302/2-P331, 
					P303/2, 
					P301/2
				])
				cylinder(
					P301*1.2, 
					P330/2, 
					P330/2, center=true, $fn=32
				);

				//hole for screw for mounting hotend holder (right)
				translate([
					P302/2+P331, 
					P303/2, 
					P301/2
				])
				cylinder(
					P301*1.2, 
					P330/2, 
					P330/2, center=true, $fn=32
				);

			}
		}
	}
}




//-----------------------------------------------------------------------------------
// utility functions
//-----------------------------------------------------------------------------------


/*
model a hole drilled with drill bit with tip angle (normally 118 degree)
parameters: 
dia: drill hole diameter
len: drill hole length from tip
angle: tip angle (normally 118 degree for HSS drill bits
*/
module drill_hole(dia, len, angle)
{
	//calulate values for tip based on angle an diameter
	tip_len = dia / 2 / tan(angle/2);
	union()
	{
		//ground bore
		translate([0, 0, tip_len-0.01]) 
			cylinder(len-tip_len+0.01, dia/2, dia/2, center=false, $fn=32);
		//tip
		cylinder(tip_len, 0, dia/2, center=false, $fn=32);
	}
}
